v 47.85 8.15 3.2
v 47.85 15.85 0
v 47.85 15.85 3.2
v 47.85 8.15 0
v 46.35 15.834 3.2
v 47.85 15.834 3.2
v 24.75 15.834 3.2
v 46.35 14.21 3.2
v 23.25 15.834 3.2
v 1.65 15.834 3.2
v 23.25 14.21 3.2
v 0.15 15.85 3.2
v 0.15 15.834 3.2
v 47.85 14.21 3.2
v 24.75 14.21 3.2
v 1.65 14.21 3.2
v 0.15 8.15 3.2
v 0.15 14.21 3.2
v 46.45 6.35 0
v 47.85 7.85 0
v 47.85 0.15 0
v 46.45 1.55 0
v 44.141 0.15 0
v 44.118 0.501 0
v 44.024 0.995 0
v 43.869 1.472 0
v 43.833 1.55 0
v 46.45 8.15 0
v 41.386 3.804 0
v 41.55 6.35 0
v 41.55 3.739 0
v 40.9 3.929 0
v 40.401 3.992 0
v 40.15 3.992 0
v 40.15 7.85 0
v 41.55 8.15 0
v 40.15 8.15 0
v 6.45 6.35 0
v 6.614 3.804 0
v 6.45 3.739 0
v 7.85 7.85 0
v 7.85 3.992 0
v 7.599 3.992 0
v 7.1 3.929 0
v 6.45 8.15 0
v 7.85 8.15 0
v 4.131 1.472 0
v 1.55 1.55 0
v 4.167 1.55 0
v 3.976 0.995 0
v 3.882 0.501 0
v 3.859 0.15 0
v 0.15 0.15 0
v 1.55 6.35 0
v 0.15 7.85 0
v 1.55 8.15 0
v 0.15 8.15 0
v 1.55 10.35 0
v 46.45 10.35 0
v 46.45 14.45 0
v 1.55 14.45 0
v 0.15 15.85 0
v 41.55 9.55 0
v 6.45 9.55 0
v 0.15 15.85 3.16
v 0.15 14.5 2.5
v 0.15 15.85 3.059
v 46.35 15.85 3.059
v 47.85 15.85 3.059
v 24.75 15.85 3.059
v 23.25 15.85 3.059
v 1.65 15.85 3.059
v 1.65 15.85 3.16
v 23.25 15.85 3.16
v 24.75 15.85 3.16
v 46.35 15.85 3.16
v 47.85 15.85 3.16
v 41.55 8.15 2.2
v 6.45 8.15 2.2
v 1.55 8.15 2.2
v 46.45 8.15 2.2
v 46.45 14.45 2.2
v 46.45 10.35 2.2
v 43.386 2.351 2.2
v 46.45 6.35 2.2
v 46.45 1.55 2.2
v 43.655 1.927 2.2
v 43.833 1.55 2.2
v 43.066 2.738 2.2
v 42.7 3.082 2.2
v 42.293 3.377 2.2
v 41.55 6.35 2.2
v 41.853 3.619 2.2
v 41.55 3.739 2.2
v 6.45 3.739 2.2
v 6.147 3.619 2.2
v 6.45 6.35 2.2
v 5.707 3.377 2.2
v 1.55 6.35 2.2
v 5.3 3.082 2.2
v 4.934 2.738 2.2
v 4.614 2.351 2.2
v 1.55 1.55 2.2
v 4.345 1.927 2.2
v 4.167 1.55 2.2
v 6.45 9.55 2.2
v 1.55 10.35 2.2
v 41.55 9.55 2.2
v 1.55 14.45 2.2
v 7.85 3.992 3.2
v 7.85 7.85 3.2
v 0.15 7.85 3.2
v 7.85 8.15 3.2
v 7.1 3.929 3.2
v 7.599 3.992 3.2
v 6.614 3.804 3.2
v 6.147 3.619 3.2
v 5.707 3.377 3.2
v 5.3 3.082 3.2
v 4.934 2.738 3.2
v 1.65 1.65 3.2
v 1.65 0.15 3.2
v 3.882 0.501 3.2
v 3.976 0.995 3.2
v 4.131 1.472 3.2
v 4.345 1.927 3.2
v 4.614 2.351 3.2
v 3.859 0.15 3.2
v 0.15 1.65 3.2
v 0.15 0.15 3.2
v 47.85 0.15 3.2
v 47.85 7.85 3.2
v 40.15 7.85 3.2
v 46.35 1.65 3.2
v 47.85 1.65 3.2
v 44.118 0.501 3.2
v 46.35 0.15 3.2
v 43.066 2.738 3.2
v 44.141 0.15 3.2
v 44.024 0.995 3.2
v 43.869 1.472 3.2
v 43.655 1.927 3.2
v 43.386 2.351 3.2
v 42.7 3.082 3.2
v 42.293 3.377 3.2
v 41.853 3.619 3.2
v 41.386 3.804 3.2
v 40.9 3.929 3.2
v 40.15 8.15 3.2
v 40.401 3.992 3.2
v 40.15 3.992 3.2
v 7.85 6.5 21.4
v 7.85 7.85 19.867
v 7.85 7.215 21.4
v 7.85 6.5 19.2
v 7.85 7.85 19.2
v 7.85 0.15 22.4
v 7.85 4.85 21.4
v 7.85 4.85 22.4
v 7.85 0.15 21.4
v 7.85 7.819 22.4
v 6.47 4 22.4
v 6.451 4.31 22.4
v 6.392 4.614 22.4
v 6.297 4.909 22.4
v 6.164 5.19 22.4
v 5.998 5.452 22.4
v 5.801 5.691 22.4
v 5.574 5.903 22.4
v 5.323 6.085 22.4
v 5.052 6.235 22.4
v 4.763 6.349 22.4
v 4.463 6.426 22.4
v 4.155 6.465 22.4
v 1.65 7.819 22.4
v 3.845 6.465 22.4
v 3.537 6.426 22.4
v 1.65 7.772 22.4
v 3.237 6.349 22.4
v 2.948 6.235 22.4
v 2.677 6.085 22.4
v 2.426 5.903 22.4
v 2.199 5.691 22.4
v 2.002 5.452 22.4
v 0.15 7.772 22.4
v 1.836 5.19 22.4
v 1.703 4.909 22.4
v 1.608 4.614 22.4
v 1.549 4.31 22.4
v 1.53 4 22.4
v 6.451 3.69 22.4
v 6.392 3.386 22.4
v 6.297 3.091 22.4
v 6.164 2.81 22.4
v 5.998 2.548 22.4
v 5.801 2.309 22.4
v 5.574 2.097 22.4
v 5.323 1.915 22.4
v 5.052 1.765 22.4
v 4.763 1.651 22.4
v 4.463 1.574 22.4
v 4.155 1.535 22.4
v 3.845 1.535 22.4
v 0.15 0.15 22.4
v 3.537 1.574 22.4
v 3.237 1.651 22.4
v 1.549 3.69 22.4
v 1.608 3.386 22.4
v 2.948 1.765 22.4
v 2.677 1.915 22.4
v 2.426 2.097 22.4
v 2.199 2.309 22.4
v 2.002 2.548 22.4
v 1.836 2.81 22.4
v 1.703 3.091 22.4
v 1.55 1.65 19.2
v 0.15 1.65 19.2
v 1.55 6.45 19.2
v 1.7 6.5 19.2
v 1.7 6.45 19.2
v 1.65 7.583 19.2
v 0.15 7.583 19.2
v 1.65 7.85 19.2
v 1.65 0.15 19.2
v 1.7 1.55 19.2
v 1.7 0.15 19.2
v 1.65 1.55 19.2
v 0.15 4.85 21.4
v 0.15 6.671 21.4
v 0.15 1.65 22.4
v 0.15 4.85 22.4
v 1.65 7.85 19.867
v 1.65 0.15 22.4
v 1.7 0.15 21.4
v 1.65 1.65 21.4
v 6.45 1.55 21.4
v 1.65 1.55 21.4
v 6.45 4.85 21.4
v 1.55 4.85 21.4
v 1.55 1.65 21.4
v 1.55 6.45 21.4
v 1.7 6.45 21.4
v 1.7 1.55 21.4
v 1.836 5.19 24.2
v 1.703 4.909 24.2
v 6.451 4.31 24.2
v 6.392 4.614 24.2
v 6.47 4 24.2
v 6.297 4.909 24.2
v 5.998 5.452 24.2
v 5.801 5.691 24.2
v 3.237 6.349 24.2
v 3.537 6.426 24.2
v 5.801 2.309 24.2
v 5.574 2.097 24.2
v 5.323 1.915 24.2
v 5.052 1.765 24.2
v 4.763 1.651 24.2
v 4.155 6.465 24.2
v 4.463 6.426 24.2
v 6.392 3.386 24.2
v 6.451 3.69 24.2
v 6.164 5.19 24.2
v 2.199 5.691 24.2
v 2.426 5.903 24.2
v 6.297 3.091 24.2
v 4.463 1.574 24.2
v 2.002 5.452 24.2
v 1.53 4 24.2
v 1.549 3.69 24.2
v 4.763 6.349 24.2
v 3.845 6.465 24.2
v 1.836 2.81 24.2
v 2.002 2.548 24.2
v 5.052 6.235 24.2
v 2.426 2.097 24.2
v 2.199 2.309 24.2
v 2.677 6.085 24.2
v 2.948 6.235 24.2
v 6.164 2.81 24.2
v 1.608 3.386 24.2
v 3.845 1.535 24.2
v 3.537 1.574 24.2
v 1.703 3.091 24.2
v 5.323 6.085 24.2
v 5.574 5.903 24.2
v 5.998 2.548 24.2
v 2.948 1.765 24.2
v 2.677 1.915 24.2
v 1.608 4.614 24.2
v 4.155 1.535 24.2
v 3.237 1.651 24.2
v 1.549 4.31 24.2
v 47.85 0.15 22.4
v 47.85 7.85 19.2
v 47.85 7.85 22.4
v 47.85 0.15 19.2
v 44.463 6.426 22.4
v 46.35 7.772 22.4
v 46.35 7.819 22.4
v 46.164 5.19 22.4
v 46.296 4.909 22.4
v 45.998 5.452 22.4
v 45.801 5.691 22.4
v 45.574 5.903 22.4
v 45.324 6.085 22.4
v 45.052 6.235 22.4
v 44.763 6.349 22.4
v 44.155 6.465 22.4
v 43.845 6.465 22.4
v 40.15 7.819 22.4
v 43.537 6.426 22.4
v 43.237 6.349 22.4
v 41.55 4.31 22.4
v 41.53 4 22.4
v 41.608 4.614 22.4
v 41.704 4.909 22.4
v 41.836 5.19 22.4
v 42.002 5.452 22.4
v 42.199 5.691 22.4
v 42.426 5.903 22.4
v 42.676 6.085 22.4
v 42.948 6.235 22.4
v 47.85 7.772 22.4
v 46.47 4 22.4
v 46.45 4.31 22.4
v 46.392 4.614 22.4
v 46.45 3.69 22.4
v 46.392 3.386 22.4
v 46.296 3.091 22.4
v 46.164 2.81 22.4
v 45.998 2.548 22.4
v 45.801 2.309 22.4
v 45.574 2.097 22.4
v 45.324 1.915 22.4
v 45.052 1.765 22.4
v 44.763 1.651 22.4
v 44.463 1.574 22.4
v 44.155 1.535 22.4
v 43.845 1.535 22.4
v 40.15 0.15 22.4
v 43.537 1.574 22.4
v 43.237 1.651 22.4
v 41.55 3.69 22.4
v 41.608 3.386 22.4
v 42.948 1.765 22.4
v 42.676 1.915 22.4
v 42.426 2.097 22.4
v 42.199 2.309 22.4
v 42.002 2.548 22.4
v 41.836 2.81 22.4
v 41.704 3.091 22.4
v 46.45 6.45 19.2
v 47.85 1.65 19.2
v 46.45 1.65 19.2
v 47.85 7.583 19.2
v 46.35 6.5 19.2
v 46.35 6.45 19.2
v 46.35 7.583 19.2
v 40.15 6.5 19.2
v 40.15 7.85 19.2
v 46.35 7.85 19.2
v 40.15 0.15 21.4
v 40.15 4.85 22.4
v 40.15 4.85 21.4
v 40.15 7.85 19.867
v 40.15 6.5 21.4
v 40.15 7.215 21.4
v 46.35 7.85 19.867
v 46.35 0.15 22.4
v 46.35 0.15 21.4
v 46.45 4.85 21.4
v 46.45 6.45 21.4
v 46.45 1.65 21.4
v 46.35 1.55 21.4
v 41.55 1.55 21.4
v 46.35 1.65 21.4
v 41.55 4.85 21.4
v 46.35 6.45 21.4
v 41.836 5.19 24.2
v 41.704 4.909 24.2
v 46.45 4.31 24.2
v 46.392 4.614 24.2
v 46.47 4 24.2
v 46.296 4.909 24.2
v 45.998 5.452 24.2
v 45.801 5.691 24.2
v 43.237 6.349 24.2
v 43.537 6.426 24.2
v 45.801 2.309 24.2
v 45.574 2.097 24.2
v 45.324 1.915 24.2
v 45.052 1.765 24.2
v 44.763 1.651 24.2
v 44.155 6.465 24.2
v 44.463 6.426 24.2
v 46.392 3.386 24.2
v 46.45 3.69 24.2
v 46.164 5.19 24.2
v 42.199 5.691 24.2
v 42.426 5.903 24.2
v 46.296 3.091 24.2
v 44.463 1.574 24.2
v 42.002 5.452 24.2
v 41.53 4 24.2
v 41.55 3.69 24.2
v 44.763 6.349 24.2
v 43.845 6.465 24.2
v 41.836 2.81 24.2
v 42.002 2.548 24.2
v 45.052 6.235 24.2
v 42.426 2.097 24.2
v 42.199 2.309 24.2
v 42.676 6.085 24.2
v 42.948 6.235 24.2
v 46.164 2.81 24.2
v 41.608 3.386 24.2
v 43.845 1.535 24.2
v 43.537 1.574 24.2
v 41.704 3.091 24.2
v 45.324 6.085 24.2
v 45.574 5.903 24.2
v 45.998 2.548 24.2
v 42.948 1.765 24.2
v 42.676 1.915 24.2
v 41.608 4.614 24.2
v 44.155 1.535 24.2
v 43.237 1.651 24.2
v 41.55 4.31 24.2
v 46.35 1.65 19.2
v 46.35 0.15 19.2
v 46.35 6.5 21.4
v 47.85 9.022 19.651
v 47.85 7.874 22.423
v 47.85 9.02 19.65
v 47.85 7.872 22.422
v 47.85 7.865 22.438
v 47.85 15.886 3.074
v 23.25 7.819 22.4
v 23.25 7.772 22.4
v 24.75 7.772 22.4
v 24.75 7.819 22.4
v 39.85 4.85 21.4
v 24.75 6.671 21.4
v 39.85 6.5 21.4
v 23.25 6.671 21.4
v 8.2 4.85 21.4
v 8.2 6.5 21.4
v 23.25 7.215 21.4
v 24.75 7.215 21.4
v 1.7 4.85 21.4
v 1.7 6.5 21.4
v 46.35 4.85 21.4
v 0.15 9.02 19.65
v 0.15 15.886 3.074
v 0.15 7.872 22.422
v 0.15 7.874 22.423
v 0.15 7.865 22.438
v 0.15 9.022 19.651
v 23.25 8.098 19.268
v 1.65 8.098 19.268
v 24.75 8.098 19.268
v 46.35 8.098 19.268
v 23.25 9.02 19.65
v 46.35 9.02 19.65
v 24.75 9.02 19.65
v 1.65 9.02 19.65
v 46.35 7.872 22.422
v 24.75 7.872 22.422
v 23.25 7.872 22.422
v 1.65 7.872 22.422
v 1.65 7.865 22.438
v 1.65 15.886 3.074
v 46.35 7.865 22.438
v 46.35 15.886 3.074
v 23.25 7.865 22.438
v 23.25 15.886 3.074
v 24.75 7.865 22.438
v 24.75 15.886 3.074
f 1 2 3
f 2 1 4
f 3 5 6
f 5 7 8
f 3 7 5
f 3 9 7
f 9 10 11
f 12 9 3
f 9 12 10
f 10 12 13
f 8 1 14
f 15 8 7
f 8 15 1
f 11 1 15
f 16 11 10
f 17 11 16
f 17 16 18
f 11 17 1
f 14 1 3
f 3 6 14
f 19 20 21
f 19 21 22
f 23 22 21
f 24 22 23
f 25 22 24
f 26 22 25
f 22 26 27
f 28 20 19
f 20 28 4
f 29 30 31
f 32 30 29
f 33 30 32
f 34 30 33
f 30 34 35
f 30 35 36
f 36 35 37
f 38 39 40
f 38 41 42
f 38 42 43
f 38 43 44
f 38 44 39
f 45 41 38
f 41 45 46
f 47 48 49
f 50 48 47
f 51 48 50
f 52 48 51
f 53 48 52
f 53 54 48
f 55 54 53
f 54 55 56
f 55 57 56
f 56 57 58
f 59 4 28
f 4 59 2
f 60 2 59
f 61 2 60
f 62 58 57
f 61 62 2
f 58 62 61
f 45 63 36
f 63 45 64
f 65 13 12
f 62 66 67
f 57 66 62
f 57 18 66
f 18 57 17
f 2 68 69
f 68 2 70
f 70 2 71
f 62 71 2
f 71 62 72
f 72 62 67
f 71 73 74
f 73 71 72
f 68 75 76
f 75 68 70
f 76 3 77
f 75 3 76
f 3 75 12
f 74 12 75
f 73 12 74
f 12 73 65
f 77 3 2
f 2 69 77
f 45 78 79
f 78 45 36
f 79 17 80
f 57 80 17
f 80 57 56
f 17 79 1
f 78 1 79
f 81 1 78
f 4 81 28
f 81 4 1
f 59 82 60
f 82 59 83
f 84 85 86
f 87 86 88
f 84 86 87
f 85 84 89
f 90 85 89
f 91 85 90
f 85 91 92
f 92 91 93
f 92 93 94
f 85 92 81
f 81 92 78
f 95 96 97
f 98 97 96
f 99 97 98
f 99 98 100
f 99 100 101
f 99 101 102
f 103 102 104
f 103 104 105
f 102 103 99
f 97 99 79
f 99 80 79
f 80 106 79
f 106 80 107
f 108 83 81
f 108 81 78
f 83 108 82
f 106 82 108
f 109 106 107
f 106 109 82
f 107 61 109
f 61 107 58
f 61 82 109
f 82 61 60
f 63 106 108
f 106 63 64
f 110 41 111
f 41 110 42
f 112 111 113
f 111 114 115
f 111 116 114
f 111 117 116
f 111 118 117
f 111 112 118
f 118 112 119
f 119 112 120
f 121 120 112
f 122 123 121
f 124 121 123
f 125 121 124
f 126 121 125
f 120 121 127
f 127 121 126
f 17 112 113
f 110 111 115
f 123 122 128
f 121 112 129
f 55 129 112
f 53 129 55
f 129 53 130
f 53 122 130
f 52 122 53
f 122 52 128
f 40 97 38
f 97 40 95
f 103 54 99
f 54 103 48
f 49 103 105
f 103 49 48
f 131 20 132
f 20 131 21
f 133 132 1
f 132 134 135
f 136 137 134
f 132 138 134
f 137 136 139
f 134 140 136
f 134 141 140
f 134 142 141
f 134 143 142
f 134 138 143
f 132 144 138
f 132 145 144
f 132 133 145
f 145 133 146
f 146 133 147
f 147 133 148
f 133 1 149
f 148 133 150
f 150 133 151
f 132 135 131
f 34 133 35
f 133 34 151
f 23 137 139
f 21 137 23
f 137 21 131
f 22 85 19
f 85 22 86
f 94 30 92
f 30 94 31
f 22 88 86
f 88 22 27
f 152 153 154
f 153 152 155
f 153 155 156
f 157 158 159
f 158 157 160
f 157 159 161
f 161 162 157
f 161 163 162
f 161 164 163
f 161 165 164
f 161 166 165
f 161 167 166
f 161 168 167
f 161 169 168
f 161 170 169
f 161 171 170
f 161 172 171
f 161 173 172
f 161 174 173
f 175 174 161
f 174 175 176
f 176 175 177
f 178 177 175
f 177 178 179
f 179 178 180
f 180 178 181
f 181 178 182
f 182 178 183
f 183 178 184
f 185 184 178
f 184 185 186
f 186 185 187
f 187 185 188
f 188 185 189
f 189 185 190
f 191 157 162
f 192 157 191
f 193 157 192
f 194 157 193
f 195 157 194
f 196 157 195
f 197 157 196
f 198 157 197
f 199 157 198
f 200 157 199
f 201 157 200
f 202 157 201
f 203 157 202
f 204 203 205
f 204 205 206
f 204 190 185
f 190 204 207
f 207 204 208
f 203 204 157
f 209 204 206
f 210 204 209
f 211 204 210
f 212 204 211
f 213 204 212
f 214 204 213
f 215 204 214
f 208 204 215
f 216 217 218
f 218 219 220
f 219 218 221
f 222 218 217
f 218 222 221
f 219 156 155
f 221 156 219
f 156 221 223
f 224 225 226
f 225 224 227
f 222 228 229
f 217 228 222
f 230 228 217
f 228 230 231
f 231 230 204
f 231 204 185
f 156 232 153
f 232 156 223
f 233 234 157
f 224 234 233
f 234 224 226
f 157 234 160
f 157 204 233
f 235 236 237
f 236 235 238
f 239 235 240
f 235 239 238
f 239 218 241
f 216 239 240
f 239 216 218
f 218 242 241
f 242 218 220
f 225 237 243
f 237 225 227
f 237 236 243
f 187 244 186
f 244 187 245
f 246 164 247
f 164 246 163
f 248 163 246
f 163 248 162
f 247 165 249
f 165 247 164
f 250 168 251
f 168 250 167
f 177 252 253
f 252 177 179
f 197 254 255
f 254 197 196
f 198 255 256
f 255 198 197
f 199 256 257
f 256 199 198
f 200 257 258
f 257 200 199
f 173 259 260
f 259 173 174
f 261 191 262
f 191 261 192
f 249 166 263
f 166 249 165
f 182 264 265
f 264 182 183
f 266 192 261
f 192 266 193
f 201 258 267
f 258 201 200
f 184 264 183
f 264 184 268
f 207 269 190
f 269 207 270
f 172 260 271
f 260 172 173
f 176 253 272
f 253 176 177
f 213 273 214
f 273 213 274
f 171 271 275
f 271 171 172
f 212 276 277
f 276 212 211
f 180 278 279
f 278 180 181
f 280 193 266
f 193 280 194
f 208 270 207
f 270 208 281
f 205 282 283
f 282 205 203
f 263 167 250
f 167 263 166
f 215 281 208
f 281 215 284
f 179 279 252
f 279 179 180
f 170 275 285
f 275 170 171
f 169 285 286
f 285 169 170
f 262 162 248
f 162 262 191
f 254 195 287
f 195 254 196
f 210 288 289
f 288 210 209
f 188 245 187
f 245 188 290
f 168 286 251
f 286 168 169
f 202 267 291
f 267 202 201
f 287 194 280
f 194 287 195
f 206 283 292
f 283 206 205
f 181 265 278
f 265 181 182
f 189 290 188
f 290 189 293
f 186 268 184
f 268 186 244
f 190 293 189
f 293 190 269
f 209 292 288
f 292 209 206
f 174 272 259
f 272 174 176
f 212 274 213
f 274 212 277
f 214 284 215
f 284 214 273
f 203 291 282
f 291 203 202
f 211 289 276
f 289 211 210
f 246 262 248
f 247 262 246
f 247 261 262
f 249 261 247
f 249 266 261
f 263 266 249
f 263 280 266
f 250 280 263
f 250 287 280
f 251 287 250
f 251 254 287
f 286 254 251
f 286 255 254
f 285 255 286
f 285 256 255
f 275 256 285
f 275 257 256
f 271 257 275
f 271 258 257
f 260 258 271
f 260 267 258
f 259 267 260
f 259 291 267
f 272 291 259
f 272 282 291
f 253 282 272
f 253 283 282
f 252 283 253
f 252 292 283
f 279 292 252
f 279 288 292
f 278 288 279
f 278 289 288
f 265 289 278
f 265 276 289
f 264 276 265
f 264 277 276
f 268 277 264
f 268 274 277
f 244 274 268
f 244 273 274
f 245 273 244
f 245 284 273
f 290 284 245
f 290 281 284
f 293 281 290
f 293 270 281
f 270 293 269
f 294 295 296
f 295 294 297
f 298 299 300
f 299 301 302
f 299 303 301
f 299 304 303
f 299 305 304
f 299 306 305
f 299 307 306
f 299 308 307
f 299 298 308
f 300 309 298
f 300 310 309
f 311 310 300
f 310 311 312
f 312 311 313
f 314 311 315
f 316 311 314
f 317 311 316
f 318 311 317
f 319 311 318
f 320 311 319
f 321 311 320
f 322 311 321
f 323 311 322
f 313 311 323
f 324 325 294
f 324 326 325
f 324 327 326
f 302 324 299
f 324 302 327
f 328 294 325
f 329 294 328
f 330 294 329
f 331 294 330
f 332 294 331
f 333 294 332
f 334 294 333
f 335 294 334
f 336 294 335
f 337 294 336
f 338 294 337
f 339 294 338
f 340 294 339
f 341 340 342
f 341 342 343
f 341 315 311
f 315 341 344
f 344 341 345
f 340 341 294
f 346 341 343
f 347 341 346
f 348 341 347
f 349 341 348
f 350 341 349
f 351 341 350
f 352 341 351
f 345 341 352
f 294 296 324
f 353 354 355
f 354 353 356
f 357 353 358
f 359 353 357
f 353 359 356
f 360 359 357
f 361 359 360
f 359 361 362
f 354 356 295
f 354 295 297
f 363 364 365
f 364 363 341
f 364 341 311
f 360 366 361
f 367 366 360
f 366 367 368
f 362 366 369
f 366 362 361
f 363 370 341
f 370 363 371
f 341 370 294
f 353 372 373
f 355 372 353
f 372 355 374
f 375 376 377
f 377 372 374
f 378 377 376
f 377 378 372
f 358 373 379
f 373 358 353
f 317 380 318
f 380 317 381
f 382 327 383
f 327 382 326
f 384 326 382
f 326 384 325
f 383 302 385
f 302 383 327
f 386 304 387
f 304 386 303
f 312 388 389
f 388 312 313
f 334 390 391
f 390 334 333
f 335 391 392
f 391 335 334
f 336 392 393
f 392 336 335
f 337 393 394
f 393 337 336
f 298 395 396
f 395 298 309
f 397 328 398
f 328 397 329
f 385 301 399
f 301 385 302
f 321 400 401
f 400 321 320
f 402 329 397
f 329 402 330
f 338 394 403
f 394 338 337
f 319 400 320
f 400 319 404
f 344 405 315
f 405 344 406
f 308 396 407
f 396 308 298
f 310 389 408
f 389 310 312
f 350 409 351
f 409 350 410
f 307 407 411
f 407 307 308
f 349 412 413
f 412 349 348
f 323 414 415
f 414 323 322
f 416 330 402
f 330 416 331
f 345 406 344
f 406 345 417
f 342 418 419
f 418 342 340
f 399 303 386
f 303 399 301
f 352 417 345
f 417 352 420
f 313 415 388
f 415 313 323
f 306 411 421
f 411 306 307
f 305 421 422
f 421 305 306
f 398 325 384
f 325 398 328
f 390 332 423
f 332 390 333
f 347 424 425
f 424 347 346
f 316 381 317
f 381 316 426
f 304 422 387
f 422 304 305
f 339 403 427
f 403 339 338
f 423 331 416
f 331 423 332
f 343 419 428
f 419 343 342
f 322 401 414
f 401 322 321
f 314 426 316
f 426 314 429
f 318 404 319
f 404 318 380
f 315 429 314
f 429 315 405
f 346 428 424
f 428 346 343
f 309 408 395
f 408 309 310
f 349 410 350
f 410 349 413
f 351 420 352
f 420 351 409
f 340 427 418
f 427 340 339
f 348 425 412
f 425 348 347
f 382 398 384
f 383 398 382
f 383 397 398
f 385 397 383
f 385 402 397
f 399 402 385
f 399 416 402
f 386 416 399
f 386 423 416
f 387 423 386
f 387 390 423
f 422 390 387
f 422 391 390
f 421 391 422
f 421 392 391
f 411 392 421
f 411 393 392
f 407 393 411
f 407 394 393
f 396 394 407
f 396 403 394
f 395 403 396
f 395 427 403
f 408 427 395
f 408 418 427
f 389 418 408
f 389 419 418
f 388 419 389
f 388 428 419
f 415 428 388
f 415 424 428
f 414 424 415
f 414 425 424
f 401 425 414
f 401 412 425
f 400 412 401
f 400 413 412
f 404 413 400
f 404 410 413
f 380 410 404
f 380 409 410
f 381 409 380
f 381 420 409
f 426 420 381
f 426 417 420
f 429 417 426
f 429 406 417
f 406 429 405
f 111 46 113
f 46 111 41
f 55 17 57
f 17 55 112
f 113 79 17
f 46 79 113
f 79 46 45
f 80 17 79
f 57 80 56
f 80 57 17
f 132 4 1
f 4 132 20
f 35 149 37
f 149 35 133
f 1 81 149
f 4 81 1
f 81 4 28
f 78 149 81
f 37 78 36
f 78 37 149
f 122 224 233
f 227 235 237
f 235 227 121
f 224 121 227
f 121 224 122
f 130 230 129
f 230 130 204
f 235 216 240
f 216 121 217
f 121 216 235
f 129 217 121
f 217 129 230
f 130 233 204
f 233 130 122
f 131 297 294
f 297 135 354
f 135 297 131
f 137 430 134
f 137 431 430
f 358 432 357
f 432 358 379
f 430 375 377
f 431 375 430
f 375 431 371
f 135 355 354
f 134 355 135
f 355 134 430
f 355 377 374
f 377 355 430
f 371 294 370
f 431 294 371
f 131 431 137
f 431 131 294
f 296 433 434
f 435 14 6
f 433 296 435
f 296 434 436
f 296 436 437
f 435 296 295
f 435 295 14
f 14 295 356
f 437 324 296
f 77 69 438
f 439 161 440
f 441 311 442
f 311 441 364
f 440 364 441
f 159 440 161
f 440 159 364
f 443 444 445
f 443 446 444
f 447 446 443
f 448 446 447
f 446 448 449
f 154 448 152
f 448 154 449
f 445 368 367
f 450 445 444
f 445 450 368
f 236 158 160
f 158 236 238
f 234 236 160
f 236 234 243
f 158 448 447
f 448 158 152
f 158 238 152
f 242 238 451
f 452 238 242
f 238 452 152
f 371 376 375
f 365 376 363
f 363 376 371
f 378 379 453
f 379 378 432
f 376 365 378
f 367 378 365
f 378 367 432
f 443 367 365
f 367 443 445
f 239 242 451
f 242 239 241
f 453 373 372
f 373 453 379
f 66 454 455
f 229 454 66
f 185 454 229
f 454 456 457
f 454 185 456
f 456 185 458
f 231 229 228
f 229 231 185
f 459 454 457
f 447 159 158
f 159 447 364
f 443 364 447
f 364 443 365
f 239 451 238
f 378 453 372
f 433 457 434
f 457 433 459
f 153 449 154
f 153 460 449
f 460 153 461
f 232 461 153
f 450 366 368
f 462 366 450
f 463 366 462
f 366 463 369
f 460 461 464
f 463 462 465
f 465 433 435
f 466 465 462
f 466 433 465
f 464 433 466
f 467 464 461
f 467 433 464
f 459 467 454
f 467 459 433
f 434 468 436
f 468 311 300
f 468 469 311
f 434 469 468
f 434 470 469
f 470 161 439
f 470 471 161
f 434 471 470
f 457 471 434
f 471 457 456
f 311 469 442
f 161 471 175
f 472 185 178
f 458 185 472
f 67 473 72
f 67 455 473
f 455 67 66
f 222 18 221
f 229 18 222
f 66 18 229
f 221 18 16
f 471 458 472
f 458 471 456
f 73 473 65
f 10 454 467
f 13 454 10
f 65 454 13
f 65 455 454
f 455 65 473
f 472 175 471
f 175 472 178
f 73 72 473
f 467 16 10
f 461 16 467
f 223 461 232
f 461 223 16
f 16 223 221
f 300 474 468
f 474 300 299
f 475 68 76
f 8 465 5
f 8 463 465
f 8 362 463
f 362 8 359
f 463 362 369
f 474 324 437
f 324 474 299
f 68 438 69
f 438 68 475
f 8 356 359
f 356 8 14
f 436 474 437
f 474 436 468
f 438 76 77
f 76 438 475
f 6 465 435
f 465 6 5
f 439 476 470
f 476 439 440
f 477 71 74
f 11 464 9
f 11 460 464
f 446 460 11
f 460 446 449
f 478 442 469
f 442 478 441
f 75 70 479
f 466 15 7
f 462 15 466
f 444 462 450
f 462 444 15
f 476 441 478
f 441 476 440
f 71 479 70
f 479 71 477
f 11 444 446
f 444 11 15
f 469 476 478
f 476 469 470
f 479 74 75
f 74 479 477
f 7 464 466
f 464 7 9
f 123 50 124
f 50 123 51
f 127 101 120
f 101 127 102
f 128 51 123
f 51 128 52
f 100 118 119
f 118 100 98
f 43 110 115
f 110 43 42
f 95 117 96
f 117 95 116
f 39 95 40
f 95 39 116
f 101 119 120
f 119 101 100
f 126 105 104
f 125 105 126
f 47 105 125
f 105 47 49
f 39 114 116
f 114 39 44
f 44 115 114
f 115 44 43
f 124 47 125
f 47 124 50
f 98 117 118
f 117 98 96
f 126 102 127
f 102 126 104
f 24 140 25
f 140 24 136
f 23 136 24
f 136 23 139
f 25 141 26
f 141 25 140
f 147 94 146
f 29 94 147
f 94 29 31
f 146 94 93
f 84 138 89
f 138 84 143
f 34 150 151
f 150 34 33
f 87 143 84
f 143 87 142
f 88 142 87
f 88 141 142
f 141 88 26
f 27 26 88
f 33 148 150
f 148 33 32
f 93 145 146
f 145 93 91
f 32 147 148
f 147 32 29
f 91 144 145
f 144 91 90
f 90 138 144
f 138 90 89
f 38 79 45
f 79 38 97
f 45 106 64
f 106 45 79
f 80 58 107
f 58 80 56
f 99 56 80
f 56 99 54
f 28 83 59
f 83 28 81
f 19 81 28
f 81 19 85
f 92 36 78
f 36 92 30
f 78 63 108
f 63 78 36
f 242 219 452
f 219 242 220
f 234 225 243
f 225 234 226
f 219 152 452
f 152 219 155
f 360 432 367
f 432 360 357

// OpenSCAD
/* LEGO Text Bricks
   by Lyl3

Create LEGO compatible bricks with text engraved on the sides

This code is published at:
https://www.thingiverse.com/thing:3867358
licensed under the Creative Commons - Attribution - Share Alike license (CC BY-SA 3.0)

V0.1 - working code
V0.2 - corrected brick dimensions to have 0.1 mm play on each side
       corrected stud height to be 1.8 mm instead of 1.6 mm
       corrected roof thickness to be 1.0 mm instead of 1.6 mm
V0.3 - cleaned the code
V0.4 - adjusted wall thickness from 1.6 mm to 1.4 mm
       fixed math for stud positions
       fixed math for play so that it's split between sides instead of on just one side
V0.5 - added tolerance parameter
V0.6 - corrected position of text to account for play and tolerance
V0.7 - set sane ranges for all parameters
V1.0 - adjusted diameter of under-stud from 6.51 to 6.41
       adjusted width of walls from 1.4 mm to 1.5 mm
       ready for release
V1.1 - changed boolean parameters to yes/no parameters to make them Thingiverse Customizer-friendly
V1.2 - allowed $fn to be adjusted from previous hard-coded value of 100
V1.3 - allow text Z shift to be negative 
V1.4 - added parameter for spacing between letters
V1.5 - moved studs down 0.00001 mm so that the brick and studs are a single mesh
V1.6 - bug fix: parameter for spacing between letters now applied to text on back,left and right sides
     - allowed LEGO dimensions to be overridden
V1.7 - modified font selection method to work around bug that Thingiverse customizer recently introduced
         that prevents direct selection of fonts with a style specified
       added capability to select any font
V1.8 - added capability to have raised text instead of embossed text

*/

/*
   Set default brick to be #2456 6x2 
*/
/* [Brick Parameters] */

// Brick length (specified in number of studs).
brickLength = 2; // [1:1:48]

// Brick width (specified in number of studs).
brickWidth = 1;  // [1:1:48]

// Brick height (specified in LEGO height units: 3 is normal brick height, 1 is plate height).
brickHeight = 1; // [1:1:18]

// Studs on top of the brick?
withStuds = "yes"; // [yes,no]
createStuds = (withStuds=="yes") ? true : false;

// Under-studs on underneath of skinny bricks? Skinny bricks that are only one unit wide have smaller solid cylinders (under-studs) underneath instead of the usual hollow cylinders. These have a tiny footprint and may not stick to the build-plate, so you may want to avoid printing them.
withUnderStuds = "yes"; // [yes,no]
createUnderStuds = (withUnderStuds=="yes") ? true : false;


/* [Advanced parameters] */

// Tolerance to account for 3D printing inaccuracies (mm). This decreases the sizes of all vertical surfaces (brick walls, studs, under-tubes, and under-studs) to provide a better fit. It is equivalent to a negative horizontal expansion setting in the Cura slicer. You might want to decrease this for bricks that are only 1 unit wide without under-studs as they will be naturally looser fitting than other bricks. The best setting is printer/filament dependent so I've set the default for my printer on the assumption that it's average. 
tolerance = 0.05; // [0:0.01:0.1]


// Resolution of circles. 50 fragments is more than enough for such a small cylinders unless the model will be later scaled up
numberFragments = 50;                 // [6:1:100] 
$fn = numberFragments;

/* [Advanced parameters: Override LEGO dimensions] */

// X and Y dimension of one brick unit (mm)
UNIT_LENGTH = 8; // [0.8:0.01:80]

// plate height (a standard brick is 3 times this height) (mm)
PLATE_HEIGHT = 3.2; // [0.32:0.01:32]

// thickness of brick roof (mm)
ROOF_THICKNESS = 1; // [0.1:0.01:10]

// thickness of brick outer wall as in the original 1.5 mm wall without nubs (mm)
WALL_THICKNESS = 1.5; // [0.15:0.01:15]

// diameter of the studs (solid cylinders) on top of a brick (mm)
STUD_DIAMETER = 4.8*1.05; // [0.48:0.01:48]

// height of the studs (solid cylinders) on top of a brick (mm)
STUD_HEIGHT = 1.8; // [0.18:0.01:18]

// outer diameter of the under-tubes (hollow cylinders) on the underside of bricks with length > 1 and width > 1 (mm)
UNDERTUBE_OUTER_DIAMETER = 6.41; // [0.64:0.01:64.1]

// inner diameter of the under-tubes (hollow cylinders) on the underside of bricks with length > 1 and width > 1 (mm)
UNDERTUBE_INNER_DIAMETER = 4.8; // [0.48:0.01:48]

// diameter of the under-studs (solid cylinders) on the underside of bricks with length = 1 or width = 1 (mm)
UNDERSTUD_DIAMETER = 1.6; // [0.16:0.01:16]

// the necessary play between bricks so that they fit together
PLAY = 0.2; // [0.02:0.01:2]

/* [Hidden] */
fudge = 0.01;               // Amount to expand some dimensions to ensure manifold model


space = (PLAY-tolerance);

difference(){
    union(){
        // base blocks
        translate([0,8,0])brick(6,1,1, false, false);
        translate([0,0,0])brick(1,1,1, false, false);
        translate([40,0,0])brick(1,1,1, false, false);
        translate([0,0,9.6*2])brick(1,1,1, true, false);
        translate([40,0,9.6*2])brick(1,1,1, true, false);

        // play gap filling
        translate([space, UNIT_LENGTH-space, 0]) cube([UNIT_LENGTH-2*space, 2*space, PLATE_HEIGHT]);
        translate([5*UNIT_LENGTH+space, UNIT_LENGTH-space, 0]) cube([UNIT_LENGTH-2*space, 2*space, PLATE_HEIGHT]);
        
        // vertical beams
        translate([space,space,PLATE_HEIGHT]) cube([WALL_THICKNESS, WALL_THICKNESS, 6*PLATE_HEIGHT]);
        translate([6*UNIT_LENGTH-WALL_THICKNESS-space,space,PLATE_HEIGHT]) cube([WALL_THICKNESS, WALL_THICKNESS, 6*PLATE_HEIGHT]);

        
        // horizontal beams
        translate([space,UNIT_LENGTH-2*WALL_THICKNESS-space,7*PLATE_HEIGHT-ROOF_THICKNESS]) cube([6*UNIT_LENGTH-2*space, 2*WALL_THICKNESS,ROOF_THICKNESS]);
        translate([space,UNIT_LENGTH-0.5*WALL_THICKNESS-space*2,7.2*PLATE_HEIGHT-ROOF_THICKNESS]) rotate([22.5-90,0,0])cube([6*UNIT_LENGTH-2*space, 2*WALL_THICKNESS,ROOF_THICKNESS]);
        
        // slope beams
        translate([space,2*UNIT_LENGTH-WALL_THICKNESS,PLATE_HEIGHT-ROOF_THICKNESS+2*space]) rotate([22.5,0,0])cube([WALL_THICKNESS,WALL_THICKNESS,6.55*PLATE_HEIGHT]);
        translate([6*UNIT_LENGTH-WALL_THICKNESS-space,2*UNIT_LENGTH-WALL_THICKNESS,PLATE_HEIGHT-ROOF_THICKNESS+2*space]) rotate([22.5,0,0])cube([WALL_THICKNESS,WALL_THICKNESS,6.55*PLATE_HEIGHT]);    
        translate([3*UNIT_LENGTH-WALL_THICKNESS/2,2*UNIT_LENGTH-WALL_THICKNESS,PLATE_HEIGHT-ROOF_THICKNESS+2*space]) rotate([22.5,0,0])cube([WALL_THICKNESS,WALL_THICKNESS,6.55*PLATE_HEIGHT]);
    
    }
    
    // lower holes
    translate([UNIT_LENGTH-space,0,0]) cylinder(r=4,h=PLATE_HEIGHT);
    translate([5*UNIT_LENGTH+space,0,0]) cylinder(r=4,h=PLATE_HEIGHT);
    
    // play gap filling underneath removal
    translate([WALL_THICKNESS+PLAY/2-tolerance,UNIT_LENGTH-WALL_THICKNESS-space,0]) cube([UNIT_LENGTH-2*WALL_THICKNESS-PLAY+tolerance*2,4,PLATE_HEIGHT-ROOF_THICKNESS]);
    translate([5*UNIT_LENGTH+WALL_THICKNESS+PLAY/2-tolerance,UNIT_LENGTH-WALL_THICKNESS-space,0]) cube([UNIT_LENGTH-2*WALL_THICKNESS-PLAY+tolerance*2,4,PLATE_HEIGHT-ROOF_THICKNESS]);
    
    
    translate([WALL_THICKNESS+PLAY,0,6*PLATE_HEIGHT])cube([UNIT_LENGTH-WALL_THICKNESS,UNIT_LENGTH-WALL_THICKNESS,PLATE_HEIGHT-ROOF_THICKNESS]);
    translate([5*UNIT_LENGTH-space,0,6*PLATE_HEIGHT])cube([UNIT_LENGTH-WALL_THICKNESS,UNIT_LENGTH-WALL_THICKNESS,PLATE_HEIGHT-ROOF_THICKNESS]);
    
}


/*
   Module to make a simple rectangular LEGO compatible brick
   Makes a #3001 4x2 brick by default
*/
module brick(length=4, width=2, height=3, createStuds=true, createUnderStuds=true) {

  // The brick
  translate([PLAY/2+tolerance, PLAY/2+tolerance, 0])
    difference() {
      cube([length*UNIT_LENGTH-PLAY-2*tolerance, width*UNIT_LENGTH-PLAY-2*tolerance, height*PLATE_HEIGHT]);
      translate([WALL_THICKNESS-2*tolerance, WALL_THICKNESS-2*tolerance, -ROOF_THICKNESS])
        cube([length*UNIT_LENGTH-2*WALL_THICKNESS-PLAY+2*tolerance, width*UNIT_LENGTH-2*WALL_THICKNESS-PLAY+2*tolerance, height*PLATE_HEIGHT]);
    }

  // The studs
  if(createStuds) {
    translate([0,0, height*PLATE_HEIGHT-0.00001])
      for (y = [0:width-1]) {
        for (x = [0:length-1]) {
          translate([(x+0.5)*UNIT_LENGTH, (y+0.5)*UNIT_LENGTH, 0])
            cylinder(h=STUD_HEIGHT, d=STUD_DIAMETER-2*tolerance);
        }
      }
  }

  // The under-tubes (hollow cylinders)
  if (width > 1 && length > 1) {
    for (y = [1:width-1]) {
      for (x = [1:length-1]) {
        difference() {
		  translate([x*UNIT_LENGTH, y*UNIT_LENGTH, 0])
			cylinder(h=height*PLATE_HEIGHT-ROOF_THICKNESS+fudge, d = UNDERTUBE_OUTER_DIAMETER-2*tolerance);
		  translate([x*UNIT_LENGTH, y*UNIT_LENGTH, -fudge])
			cylinder(h=height*PLATE_HEIGHT-ROOF_THICKNESS+fudge, d = UNDERTUBE_INNER_DIAMETER+2*tolerance);				
		}
	  }
	}
  }

  // The under-studs (smaller solid cylinders) along the length
  if (width == 1 && length > 1 && createUnderStuds) {	
	for (x = [1:length-1]) {
	  translate([x*UNIT_LENGTH, 0.5*UNIT_LENGTH, 0])
	    cylinder(h=height*PLATE_HEIGHT-WALL_THICKNESS, d=UNDERSTUD_DIAMETER-2*tolerance);
	}
  }

  // The under-studs (smaller solid cylinders) along the width
  if (length == 1 && width > 1 && createUnderStuds) {	
	for (y = [1:width-1]) {
	  translate([0.5*UNIT_LENGTH, y*UNIT_LENGTH, 0])
		cylinder(h=height*PLATE_HEIGHT-WALL_THICKNESS, d=UNDERSTUD_DIAMETER-2*tolerance);
	}
  }

}
